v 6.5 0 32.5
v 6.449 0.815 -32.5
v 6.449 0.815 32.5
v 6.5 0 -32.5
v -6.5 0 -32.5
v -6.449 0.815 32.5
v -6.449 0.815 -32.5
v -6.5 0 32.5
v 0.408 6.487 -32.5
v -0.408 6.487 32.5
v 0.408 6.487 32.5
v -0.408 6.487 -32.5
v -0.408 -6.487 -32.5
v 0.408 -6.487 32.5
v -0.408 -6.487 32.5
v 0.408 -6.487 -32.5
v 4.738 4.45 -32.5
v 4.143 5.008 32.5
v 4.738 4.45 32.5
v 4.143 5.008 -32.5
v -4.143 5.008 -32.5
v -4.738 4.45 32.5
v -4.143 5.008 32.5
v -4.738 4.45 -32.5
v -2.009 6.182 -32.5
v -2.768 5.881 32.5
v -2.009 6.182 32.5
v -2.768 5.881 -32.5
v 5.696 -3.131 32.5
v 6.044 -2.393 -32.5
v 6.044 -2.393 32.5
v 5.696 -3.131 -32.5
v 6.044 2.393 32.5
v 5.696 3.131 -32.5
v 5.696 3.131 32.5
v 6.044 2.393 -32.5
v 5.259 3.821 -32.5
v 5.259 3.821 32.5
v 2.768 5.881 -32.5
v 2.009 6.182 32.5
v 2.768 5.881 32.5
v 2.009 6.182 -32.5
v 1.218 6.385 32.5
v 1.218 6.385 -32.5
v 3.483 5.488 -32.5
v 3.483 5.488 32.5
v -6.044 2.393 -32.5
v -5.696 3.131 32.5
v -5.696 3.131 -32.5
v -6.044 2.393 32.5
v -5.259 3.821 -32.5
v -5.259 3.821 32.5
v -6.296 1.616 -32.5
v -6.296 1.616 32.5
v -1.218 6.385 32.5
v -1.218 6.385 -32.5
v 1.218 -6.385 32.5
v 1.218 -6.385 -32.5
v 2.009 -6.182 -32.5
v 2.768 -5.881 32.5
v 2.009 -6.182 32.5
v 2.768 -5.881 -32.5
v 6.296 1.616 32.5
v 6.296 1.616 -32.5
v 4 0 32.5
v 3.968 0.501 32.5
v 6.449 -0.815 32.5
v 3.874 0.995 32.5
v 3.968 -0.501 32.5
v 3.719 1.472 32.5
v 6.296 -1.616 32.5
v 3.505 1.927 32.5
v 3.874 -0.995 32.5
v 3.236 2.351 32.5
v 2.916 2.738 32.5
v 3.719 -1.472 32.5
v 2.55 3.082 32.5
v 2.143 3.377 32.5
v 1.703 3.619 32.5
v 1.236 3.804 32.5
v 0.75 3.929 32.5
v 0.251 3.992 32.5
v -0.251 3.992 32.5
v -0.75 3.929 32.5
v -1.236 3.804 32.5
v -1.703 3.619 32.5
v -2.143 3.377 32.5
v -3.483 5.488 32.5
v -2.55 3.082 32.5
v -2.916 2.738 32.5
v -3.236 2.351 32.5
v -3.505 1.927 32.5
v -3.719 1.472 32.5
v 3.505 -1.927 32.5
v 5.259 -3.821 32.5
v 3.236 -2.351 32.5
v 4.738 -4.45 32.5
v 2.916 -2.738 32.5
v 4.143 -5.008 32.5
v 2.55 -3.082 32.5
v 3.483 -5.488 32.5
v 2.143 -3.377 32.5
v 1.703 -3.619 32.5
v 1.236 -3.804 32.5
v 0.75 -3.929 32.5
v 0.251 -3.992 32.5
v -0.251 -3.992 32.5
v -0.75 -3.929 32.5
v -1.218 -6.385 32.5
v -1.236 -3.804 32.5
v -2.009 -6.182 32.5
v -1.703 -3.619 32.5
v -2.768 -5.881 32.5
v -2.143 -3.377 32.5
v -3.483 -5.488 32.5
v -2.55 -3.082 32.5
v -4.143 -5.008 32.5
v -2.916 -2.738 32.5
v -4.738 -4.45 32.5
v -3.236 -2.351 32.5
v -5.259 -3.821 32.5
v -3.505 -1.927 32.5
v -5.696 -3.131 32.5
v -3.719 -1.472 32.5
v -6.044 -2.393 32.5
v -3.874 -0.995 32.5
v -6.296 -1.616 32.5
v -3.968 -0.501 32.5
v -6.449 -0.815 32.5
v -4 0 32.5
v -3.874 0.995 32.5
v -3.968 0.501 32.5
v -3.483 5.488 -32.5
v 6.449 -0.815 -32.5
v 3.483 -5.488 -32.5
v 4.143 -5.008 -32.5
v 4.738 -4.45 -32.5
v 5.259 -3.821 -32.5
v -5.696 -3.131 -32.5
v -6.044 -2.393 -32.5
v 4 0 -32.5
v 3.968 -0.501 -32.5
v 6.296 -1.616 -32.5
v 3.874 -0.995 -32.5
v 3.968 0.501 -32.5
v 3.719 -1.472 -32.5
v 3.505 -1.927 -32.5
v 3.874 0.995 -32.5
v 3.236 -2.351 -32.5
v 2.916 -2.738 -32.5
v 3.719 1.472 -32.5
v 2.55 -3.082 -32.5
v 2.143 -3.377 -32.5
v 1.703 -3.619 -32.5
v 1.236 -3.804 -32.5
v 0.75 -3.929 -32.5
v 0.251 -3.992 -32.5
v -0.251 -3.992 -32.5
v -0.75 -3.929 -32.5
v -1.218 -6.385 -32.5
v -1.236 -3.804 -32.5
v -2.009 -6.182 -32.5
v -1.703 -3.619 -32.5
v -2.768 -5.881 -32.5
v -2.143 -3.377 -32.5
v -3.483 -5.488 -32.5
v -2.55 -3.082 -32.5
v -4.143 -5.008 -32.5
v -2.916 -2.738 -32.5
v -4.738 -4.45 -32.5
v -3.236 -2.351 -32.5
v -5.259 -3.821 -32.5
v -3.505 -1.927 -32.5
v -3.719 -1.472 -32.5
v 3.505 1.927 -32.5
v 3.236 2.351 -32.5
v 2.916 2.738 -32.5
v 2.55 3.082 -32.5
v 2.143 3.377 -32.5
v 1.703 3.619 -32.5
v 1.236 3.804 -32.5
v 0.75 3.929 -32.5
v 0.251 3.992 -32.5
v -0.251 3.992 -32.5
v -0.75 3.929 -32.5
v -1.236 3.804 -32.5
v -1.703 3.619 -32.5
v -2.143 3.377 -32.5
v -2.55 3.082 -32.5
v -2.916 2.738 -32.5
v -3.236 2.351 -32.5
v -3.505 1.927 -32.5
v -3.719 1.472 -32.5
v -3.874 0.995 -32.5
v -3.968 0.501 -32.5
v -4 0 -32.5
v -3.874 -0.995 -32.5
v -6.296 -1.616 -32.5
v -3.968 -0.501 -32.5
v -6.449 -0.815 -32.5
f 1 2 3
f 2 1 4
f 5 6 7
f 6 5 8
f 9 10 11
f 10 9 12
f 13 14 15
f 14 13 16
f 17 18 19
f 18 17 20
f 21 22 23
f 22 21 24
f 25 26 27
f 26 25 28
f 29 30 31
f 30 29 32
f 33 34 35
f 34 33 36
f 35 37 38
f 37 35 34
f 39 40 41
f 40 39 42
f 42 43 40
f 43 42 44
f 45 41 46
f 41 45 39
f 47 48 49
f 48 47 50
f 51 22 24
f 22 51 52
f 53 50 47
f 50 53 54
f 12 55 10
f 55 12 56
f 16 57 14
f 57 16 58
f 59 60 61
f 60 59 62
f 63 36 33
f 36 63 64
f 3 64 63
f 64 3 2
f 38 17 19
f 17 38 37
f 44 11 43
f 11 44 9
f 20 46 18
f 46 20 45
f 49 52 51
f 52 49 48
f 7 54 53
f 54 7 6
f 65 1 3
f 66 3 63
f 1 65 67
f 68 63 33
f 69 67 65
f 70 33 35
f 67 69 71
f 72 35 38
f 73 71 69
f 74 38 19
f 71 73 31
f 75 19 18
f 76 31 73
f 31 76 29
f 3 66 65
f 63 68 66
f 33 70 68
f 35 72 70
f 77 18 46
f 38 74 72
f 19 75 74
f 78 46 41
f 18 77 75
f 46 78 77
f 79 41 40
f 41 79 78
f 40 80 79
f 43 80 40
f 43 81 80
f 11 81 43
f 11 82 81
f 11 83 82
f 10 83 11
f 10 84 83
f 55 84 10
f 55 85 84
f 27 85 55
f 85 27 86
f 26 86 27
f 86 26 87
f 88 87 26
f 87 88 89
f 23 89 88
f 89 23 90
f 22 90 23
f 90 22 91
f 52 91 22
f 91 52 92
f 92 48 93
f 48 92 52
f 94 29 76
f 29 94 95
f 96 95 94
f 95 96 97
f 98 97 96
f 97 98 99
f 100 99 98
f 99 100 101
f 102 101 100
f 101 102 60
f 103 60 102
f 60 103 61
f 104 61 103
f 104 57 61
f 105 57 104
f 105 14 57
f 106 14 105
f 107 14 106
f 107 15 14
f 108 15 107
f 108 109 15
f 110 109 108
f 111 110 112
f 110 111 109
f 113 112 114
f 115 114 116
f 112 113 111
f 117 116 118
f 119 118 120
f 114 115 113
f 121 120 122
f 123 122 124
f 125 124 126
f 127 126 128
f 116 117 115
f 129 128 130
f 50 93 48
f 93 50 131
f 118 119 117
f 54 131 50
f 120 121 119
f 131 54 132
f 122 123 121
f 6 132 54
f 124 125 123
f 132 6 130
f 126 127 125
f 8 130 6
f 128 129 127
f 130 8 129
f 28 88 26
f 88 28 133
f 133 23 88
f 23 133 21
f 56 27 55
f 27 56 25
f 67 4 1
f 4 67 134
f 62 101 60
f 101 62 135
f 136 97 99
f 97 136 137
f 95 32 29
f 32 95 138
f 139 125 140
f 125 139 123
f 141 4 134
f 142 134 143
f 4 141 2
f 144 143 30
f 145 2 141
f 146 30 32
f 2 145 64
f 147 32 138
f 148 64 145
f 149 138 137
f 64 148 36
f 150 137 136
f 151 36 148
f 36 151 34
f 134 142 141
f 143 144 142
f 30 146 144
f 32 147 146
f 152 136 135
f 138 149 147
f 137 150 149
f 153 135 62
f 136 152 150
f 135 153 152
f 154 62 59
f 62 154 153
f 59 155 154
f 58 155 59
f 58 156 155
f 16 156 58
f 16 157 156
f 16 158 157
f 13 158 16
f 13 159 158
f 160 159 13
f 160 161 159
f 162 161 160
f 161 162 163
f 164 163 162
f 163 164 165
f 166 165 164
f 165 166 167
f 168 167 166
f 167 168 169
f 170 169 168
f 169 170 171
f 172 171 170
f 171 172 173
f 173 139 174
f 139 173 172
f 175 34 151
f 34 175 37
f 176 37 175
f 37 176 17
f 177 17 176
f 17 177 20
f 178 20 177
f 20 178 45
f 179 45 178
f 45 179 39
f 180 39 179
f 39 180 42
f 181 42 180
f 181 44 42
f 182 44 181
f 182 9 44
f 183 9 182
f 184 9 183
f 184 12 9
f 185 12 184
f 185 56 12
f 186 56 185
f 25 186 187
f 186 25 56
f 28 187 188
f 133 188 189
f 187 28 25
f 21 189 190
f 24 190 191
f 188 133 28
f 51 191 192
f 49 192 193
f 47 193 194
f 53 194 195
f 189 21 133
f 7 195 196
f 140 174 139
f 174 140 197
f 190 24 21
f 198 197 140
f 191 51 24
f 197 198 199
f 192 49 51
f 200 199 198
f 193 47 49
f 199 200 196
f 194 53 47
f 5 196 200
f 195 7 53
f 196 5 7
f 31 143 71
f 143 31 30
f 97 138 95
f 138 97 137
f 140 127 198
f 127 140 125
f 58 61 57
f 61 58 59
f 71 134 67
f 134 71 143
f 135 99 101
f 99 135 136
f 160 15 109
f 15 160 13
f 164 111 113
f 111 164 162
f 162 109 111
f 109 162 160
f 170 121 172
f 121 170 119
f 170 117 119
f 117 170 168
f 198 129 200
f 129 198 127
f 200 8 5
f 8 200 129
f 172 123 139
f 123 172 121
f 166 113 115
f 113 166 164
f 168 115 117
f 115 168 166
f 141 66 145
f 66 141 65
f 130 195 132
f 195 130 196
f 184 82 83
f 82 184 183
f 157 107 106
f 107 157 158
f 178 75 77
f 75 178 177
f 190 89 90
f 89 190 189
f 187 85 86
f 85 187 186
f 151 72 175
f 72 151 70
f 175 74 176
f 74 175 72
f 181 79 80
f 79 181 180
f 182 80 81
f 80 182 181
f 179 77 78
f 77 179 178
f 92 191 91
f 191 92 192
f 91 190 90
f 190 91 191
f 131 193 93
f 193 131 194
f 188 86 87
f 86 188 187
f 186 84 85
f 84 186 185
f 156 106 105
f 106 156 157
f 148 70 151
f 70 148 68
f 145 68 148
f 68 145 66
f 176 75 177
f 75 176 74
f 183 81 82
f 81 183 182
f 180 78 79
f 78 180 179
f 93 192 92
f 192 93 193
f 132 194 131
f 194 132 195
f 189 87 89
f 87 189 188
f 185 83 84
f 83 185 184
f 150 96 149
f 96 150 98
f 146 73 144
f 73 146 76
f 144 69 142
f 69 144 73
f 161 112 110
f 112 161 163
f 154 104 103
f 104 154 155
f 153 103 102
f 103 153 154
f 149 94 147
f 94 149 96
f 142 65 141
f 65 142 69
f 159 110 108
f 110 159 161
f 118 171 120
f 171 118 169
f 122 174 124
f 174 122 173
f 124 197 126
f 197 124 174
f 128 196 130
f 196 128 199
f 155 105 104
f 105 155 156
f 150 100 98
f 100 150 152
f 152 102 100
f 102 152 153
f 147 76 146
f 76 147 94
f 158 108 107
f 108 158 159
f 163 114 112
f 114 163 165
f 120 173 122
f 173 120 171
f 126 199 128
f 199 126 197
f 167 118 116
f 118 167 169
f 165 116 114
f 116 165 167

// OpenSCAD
$fn = 50;


difference() {
	union() {
		translate(v = [0, 0, -32.5000000000]) {
			cylinder(h = 65, r = 6.5000000000);
		}
	}
	union() {
		translate(v = [0, 0, -100.0000000000]) {
			cylinder(h = 200, r = 4);
		}
	}
}
